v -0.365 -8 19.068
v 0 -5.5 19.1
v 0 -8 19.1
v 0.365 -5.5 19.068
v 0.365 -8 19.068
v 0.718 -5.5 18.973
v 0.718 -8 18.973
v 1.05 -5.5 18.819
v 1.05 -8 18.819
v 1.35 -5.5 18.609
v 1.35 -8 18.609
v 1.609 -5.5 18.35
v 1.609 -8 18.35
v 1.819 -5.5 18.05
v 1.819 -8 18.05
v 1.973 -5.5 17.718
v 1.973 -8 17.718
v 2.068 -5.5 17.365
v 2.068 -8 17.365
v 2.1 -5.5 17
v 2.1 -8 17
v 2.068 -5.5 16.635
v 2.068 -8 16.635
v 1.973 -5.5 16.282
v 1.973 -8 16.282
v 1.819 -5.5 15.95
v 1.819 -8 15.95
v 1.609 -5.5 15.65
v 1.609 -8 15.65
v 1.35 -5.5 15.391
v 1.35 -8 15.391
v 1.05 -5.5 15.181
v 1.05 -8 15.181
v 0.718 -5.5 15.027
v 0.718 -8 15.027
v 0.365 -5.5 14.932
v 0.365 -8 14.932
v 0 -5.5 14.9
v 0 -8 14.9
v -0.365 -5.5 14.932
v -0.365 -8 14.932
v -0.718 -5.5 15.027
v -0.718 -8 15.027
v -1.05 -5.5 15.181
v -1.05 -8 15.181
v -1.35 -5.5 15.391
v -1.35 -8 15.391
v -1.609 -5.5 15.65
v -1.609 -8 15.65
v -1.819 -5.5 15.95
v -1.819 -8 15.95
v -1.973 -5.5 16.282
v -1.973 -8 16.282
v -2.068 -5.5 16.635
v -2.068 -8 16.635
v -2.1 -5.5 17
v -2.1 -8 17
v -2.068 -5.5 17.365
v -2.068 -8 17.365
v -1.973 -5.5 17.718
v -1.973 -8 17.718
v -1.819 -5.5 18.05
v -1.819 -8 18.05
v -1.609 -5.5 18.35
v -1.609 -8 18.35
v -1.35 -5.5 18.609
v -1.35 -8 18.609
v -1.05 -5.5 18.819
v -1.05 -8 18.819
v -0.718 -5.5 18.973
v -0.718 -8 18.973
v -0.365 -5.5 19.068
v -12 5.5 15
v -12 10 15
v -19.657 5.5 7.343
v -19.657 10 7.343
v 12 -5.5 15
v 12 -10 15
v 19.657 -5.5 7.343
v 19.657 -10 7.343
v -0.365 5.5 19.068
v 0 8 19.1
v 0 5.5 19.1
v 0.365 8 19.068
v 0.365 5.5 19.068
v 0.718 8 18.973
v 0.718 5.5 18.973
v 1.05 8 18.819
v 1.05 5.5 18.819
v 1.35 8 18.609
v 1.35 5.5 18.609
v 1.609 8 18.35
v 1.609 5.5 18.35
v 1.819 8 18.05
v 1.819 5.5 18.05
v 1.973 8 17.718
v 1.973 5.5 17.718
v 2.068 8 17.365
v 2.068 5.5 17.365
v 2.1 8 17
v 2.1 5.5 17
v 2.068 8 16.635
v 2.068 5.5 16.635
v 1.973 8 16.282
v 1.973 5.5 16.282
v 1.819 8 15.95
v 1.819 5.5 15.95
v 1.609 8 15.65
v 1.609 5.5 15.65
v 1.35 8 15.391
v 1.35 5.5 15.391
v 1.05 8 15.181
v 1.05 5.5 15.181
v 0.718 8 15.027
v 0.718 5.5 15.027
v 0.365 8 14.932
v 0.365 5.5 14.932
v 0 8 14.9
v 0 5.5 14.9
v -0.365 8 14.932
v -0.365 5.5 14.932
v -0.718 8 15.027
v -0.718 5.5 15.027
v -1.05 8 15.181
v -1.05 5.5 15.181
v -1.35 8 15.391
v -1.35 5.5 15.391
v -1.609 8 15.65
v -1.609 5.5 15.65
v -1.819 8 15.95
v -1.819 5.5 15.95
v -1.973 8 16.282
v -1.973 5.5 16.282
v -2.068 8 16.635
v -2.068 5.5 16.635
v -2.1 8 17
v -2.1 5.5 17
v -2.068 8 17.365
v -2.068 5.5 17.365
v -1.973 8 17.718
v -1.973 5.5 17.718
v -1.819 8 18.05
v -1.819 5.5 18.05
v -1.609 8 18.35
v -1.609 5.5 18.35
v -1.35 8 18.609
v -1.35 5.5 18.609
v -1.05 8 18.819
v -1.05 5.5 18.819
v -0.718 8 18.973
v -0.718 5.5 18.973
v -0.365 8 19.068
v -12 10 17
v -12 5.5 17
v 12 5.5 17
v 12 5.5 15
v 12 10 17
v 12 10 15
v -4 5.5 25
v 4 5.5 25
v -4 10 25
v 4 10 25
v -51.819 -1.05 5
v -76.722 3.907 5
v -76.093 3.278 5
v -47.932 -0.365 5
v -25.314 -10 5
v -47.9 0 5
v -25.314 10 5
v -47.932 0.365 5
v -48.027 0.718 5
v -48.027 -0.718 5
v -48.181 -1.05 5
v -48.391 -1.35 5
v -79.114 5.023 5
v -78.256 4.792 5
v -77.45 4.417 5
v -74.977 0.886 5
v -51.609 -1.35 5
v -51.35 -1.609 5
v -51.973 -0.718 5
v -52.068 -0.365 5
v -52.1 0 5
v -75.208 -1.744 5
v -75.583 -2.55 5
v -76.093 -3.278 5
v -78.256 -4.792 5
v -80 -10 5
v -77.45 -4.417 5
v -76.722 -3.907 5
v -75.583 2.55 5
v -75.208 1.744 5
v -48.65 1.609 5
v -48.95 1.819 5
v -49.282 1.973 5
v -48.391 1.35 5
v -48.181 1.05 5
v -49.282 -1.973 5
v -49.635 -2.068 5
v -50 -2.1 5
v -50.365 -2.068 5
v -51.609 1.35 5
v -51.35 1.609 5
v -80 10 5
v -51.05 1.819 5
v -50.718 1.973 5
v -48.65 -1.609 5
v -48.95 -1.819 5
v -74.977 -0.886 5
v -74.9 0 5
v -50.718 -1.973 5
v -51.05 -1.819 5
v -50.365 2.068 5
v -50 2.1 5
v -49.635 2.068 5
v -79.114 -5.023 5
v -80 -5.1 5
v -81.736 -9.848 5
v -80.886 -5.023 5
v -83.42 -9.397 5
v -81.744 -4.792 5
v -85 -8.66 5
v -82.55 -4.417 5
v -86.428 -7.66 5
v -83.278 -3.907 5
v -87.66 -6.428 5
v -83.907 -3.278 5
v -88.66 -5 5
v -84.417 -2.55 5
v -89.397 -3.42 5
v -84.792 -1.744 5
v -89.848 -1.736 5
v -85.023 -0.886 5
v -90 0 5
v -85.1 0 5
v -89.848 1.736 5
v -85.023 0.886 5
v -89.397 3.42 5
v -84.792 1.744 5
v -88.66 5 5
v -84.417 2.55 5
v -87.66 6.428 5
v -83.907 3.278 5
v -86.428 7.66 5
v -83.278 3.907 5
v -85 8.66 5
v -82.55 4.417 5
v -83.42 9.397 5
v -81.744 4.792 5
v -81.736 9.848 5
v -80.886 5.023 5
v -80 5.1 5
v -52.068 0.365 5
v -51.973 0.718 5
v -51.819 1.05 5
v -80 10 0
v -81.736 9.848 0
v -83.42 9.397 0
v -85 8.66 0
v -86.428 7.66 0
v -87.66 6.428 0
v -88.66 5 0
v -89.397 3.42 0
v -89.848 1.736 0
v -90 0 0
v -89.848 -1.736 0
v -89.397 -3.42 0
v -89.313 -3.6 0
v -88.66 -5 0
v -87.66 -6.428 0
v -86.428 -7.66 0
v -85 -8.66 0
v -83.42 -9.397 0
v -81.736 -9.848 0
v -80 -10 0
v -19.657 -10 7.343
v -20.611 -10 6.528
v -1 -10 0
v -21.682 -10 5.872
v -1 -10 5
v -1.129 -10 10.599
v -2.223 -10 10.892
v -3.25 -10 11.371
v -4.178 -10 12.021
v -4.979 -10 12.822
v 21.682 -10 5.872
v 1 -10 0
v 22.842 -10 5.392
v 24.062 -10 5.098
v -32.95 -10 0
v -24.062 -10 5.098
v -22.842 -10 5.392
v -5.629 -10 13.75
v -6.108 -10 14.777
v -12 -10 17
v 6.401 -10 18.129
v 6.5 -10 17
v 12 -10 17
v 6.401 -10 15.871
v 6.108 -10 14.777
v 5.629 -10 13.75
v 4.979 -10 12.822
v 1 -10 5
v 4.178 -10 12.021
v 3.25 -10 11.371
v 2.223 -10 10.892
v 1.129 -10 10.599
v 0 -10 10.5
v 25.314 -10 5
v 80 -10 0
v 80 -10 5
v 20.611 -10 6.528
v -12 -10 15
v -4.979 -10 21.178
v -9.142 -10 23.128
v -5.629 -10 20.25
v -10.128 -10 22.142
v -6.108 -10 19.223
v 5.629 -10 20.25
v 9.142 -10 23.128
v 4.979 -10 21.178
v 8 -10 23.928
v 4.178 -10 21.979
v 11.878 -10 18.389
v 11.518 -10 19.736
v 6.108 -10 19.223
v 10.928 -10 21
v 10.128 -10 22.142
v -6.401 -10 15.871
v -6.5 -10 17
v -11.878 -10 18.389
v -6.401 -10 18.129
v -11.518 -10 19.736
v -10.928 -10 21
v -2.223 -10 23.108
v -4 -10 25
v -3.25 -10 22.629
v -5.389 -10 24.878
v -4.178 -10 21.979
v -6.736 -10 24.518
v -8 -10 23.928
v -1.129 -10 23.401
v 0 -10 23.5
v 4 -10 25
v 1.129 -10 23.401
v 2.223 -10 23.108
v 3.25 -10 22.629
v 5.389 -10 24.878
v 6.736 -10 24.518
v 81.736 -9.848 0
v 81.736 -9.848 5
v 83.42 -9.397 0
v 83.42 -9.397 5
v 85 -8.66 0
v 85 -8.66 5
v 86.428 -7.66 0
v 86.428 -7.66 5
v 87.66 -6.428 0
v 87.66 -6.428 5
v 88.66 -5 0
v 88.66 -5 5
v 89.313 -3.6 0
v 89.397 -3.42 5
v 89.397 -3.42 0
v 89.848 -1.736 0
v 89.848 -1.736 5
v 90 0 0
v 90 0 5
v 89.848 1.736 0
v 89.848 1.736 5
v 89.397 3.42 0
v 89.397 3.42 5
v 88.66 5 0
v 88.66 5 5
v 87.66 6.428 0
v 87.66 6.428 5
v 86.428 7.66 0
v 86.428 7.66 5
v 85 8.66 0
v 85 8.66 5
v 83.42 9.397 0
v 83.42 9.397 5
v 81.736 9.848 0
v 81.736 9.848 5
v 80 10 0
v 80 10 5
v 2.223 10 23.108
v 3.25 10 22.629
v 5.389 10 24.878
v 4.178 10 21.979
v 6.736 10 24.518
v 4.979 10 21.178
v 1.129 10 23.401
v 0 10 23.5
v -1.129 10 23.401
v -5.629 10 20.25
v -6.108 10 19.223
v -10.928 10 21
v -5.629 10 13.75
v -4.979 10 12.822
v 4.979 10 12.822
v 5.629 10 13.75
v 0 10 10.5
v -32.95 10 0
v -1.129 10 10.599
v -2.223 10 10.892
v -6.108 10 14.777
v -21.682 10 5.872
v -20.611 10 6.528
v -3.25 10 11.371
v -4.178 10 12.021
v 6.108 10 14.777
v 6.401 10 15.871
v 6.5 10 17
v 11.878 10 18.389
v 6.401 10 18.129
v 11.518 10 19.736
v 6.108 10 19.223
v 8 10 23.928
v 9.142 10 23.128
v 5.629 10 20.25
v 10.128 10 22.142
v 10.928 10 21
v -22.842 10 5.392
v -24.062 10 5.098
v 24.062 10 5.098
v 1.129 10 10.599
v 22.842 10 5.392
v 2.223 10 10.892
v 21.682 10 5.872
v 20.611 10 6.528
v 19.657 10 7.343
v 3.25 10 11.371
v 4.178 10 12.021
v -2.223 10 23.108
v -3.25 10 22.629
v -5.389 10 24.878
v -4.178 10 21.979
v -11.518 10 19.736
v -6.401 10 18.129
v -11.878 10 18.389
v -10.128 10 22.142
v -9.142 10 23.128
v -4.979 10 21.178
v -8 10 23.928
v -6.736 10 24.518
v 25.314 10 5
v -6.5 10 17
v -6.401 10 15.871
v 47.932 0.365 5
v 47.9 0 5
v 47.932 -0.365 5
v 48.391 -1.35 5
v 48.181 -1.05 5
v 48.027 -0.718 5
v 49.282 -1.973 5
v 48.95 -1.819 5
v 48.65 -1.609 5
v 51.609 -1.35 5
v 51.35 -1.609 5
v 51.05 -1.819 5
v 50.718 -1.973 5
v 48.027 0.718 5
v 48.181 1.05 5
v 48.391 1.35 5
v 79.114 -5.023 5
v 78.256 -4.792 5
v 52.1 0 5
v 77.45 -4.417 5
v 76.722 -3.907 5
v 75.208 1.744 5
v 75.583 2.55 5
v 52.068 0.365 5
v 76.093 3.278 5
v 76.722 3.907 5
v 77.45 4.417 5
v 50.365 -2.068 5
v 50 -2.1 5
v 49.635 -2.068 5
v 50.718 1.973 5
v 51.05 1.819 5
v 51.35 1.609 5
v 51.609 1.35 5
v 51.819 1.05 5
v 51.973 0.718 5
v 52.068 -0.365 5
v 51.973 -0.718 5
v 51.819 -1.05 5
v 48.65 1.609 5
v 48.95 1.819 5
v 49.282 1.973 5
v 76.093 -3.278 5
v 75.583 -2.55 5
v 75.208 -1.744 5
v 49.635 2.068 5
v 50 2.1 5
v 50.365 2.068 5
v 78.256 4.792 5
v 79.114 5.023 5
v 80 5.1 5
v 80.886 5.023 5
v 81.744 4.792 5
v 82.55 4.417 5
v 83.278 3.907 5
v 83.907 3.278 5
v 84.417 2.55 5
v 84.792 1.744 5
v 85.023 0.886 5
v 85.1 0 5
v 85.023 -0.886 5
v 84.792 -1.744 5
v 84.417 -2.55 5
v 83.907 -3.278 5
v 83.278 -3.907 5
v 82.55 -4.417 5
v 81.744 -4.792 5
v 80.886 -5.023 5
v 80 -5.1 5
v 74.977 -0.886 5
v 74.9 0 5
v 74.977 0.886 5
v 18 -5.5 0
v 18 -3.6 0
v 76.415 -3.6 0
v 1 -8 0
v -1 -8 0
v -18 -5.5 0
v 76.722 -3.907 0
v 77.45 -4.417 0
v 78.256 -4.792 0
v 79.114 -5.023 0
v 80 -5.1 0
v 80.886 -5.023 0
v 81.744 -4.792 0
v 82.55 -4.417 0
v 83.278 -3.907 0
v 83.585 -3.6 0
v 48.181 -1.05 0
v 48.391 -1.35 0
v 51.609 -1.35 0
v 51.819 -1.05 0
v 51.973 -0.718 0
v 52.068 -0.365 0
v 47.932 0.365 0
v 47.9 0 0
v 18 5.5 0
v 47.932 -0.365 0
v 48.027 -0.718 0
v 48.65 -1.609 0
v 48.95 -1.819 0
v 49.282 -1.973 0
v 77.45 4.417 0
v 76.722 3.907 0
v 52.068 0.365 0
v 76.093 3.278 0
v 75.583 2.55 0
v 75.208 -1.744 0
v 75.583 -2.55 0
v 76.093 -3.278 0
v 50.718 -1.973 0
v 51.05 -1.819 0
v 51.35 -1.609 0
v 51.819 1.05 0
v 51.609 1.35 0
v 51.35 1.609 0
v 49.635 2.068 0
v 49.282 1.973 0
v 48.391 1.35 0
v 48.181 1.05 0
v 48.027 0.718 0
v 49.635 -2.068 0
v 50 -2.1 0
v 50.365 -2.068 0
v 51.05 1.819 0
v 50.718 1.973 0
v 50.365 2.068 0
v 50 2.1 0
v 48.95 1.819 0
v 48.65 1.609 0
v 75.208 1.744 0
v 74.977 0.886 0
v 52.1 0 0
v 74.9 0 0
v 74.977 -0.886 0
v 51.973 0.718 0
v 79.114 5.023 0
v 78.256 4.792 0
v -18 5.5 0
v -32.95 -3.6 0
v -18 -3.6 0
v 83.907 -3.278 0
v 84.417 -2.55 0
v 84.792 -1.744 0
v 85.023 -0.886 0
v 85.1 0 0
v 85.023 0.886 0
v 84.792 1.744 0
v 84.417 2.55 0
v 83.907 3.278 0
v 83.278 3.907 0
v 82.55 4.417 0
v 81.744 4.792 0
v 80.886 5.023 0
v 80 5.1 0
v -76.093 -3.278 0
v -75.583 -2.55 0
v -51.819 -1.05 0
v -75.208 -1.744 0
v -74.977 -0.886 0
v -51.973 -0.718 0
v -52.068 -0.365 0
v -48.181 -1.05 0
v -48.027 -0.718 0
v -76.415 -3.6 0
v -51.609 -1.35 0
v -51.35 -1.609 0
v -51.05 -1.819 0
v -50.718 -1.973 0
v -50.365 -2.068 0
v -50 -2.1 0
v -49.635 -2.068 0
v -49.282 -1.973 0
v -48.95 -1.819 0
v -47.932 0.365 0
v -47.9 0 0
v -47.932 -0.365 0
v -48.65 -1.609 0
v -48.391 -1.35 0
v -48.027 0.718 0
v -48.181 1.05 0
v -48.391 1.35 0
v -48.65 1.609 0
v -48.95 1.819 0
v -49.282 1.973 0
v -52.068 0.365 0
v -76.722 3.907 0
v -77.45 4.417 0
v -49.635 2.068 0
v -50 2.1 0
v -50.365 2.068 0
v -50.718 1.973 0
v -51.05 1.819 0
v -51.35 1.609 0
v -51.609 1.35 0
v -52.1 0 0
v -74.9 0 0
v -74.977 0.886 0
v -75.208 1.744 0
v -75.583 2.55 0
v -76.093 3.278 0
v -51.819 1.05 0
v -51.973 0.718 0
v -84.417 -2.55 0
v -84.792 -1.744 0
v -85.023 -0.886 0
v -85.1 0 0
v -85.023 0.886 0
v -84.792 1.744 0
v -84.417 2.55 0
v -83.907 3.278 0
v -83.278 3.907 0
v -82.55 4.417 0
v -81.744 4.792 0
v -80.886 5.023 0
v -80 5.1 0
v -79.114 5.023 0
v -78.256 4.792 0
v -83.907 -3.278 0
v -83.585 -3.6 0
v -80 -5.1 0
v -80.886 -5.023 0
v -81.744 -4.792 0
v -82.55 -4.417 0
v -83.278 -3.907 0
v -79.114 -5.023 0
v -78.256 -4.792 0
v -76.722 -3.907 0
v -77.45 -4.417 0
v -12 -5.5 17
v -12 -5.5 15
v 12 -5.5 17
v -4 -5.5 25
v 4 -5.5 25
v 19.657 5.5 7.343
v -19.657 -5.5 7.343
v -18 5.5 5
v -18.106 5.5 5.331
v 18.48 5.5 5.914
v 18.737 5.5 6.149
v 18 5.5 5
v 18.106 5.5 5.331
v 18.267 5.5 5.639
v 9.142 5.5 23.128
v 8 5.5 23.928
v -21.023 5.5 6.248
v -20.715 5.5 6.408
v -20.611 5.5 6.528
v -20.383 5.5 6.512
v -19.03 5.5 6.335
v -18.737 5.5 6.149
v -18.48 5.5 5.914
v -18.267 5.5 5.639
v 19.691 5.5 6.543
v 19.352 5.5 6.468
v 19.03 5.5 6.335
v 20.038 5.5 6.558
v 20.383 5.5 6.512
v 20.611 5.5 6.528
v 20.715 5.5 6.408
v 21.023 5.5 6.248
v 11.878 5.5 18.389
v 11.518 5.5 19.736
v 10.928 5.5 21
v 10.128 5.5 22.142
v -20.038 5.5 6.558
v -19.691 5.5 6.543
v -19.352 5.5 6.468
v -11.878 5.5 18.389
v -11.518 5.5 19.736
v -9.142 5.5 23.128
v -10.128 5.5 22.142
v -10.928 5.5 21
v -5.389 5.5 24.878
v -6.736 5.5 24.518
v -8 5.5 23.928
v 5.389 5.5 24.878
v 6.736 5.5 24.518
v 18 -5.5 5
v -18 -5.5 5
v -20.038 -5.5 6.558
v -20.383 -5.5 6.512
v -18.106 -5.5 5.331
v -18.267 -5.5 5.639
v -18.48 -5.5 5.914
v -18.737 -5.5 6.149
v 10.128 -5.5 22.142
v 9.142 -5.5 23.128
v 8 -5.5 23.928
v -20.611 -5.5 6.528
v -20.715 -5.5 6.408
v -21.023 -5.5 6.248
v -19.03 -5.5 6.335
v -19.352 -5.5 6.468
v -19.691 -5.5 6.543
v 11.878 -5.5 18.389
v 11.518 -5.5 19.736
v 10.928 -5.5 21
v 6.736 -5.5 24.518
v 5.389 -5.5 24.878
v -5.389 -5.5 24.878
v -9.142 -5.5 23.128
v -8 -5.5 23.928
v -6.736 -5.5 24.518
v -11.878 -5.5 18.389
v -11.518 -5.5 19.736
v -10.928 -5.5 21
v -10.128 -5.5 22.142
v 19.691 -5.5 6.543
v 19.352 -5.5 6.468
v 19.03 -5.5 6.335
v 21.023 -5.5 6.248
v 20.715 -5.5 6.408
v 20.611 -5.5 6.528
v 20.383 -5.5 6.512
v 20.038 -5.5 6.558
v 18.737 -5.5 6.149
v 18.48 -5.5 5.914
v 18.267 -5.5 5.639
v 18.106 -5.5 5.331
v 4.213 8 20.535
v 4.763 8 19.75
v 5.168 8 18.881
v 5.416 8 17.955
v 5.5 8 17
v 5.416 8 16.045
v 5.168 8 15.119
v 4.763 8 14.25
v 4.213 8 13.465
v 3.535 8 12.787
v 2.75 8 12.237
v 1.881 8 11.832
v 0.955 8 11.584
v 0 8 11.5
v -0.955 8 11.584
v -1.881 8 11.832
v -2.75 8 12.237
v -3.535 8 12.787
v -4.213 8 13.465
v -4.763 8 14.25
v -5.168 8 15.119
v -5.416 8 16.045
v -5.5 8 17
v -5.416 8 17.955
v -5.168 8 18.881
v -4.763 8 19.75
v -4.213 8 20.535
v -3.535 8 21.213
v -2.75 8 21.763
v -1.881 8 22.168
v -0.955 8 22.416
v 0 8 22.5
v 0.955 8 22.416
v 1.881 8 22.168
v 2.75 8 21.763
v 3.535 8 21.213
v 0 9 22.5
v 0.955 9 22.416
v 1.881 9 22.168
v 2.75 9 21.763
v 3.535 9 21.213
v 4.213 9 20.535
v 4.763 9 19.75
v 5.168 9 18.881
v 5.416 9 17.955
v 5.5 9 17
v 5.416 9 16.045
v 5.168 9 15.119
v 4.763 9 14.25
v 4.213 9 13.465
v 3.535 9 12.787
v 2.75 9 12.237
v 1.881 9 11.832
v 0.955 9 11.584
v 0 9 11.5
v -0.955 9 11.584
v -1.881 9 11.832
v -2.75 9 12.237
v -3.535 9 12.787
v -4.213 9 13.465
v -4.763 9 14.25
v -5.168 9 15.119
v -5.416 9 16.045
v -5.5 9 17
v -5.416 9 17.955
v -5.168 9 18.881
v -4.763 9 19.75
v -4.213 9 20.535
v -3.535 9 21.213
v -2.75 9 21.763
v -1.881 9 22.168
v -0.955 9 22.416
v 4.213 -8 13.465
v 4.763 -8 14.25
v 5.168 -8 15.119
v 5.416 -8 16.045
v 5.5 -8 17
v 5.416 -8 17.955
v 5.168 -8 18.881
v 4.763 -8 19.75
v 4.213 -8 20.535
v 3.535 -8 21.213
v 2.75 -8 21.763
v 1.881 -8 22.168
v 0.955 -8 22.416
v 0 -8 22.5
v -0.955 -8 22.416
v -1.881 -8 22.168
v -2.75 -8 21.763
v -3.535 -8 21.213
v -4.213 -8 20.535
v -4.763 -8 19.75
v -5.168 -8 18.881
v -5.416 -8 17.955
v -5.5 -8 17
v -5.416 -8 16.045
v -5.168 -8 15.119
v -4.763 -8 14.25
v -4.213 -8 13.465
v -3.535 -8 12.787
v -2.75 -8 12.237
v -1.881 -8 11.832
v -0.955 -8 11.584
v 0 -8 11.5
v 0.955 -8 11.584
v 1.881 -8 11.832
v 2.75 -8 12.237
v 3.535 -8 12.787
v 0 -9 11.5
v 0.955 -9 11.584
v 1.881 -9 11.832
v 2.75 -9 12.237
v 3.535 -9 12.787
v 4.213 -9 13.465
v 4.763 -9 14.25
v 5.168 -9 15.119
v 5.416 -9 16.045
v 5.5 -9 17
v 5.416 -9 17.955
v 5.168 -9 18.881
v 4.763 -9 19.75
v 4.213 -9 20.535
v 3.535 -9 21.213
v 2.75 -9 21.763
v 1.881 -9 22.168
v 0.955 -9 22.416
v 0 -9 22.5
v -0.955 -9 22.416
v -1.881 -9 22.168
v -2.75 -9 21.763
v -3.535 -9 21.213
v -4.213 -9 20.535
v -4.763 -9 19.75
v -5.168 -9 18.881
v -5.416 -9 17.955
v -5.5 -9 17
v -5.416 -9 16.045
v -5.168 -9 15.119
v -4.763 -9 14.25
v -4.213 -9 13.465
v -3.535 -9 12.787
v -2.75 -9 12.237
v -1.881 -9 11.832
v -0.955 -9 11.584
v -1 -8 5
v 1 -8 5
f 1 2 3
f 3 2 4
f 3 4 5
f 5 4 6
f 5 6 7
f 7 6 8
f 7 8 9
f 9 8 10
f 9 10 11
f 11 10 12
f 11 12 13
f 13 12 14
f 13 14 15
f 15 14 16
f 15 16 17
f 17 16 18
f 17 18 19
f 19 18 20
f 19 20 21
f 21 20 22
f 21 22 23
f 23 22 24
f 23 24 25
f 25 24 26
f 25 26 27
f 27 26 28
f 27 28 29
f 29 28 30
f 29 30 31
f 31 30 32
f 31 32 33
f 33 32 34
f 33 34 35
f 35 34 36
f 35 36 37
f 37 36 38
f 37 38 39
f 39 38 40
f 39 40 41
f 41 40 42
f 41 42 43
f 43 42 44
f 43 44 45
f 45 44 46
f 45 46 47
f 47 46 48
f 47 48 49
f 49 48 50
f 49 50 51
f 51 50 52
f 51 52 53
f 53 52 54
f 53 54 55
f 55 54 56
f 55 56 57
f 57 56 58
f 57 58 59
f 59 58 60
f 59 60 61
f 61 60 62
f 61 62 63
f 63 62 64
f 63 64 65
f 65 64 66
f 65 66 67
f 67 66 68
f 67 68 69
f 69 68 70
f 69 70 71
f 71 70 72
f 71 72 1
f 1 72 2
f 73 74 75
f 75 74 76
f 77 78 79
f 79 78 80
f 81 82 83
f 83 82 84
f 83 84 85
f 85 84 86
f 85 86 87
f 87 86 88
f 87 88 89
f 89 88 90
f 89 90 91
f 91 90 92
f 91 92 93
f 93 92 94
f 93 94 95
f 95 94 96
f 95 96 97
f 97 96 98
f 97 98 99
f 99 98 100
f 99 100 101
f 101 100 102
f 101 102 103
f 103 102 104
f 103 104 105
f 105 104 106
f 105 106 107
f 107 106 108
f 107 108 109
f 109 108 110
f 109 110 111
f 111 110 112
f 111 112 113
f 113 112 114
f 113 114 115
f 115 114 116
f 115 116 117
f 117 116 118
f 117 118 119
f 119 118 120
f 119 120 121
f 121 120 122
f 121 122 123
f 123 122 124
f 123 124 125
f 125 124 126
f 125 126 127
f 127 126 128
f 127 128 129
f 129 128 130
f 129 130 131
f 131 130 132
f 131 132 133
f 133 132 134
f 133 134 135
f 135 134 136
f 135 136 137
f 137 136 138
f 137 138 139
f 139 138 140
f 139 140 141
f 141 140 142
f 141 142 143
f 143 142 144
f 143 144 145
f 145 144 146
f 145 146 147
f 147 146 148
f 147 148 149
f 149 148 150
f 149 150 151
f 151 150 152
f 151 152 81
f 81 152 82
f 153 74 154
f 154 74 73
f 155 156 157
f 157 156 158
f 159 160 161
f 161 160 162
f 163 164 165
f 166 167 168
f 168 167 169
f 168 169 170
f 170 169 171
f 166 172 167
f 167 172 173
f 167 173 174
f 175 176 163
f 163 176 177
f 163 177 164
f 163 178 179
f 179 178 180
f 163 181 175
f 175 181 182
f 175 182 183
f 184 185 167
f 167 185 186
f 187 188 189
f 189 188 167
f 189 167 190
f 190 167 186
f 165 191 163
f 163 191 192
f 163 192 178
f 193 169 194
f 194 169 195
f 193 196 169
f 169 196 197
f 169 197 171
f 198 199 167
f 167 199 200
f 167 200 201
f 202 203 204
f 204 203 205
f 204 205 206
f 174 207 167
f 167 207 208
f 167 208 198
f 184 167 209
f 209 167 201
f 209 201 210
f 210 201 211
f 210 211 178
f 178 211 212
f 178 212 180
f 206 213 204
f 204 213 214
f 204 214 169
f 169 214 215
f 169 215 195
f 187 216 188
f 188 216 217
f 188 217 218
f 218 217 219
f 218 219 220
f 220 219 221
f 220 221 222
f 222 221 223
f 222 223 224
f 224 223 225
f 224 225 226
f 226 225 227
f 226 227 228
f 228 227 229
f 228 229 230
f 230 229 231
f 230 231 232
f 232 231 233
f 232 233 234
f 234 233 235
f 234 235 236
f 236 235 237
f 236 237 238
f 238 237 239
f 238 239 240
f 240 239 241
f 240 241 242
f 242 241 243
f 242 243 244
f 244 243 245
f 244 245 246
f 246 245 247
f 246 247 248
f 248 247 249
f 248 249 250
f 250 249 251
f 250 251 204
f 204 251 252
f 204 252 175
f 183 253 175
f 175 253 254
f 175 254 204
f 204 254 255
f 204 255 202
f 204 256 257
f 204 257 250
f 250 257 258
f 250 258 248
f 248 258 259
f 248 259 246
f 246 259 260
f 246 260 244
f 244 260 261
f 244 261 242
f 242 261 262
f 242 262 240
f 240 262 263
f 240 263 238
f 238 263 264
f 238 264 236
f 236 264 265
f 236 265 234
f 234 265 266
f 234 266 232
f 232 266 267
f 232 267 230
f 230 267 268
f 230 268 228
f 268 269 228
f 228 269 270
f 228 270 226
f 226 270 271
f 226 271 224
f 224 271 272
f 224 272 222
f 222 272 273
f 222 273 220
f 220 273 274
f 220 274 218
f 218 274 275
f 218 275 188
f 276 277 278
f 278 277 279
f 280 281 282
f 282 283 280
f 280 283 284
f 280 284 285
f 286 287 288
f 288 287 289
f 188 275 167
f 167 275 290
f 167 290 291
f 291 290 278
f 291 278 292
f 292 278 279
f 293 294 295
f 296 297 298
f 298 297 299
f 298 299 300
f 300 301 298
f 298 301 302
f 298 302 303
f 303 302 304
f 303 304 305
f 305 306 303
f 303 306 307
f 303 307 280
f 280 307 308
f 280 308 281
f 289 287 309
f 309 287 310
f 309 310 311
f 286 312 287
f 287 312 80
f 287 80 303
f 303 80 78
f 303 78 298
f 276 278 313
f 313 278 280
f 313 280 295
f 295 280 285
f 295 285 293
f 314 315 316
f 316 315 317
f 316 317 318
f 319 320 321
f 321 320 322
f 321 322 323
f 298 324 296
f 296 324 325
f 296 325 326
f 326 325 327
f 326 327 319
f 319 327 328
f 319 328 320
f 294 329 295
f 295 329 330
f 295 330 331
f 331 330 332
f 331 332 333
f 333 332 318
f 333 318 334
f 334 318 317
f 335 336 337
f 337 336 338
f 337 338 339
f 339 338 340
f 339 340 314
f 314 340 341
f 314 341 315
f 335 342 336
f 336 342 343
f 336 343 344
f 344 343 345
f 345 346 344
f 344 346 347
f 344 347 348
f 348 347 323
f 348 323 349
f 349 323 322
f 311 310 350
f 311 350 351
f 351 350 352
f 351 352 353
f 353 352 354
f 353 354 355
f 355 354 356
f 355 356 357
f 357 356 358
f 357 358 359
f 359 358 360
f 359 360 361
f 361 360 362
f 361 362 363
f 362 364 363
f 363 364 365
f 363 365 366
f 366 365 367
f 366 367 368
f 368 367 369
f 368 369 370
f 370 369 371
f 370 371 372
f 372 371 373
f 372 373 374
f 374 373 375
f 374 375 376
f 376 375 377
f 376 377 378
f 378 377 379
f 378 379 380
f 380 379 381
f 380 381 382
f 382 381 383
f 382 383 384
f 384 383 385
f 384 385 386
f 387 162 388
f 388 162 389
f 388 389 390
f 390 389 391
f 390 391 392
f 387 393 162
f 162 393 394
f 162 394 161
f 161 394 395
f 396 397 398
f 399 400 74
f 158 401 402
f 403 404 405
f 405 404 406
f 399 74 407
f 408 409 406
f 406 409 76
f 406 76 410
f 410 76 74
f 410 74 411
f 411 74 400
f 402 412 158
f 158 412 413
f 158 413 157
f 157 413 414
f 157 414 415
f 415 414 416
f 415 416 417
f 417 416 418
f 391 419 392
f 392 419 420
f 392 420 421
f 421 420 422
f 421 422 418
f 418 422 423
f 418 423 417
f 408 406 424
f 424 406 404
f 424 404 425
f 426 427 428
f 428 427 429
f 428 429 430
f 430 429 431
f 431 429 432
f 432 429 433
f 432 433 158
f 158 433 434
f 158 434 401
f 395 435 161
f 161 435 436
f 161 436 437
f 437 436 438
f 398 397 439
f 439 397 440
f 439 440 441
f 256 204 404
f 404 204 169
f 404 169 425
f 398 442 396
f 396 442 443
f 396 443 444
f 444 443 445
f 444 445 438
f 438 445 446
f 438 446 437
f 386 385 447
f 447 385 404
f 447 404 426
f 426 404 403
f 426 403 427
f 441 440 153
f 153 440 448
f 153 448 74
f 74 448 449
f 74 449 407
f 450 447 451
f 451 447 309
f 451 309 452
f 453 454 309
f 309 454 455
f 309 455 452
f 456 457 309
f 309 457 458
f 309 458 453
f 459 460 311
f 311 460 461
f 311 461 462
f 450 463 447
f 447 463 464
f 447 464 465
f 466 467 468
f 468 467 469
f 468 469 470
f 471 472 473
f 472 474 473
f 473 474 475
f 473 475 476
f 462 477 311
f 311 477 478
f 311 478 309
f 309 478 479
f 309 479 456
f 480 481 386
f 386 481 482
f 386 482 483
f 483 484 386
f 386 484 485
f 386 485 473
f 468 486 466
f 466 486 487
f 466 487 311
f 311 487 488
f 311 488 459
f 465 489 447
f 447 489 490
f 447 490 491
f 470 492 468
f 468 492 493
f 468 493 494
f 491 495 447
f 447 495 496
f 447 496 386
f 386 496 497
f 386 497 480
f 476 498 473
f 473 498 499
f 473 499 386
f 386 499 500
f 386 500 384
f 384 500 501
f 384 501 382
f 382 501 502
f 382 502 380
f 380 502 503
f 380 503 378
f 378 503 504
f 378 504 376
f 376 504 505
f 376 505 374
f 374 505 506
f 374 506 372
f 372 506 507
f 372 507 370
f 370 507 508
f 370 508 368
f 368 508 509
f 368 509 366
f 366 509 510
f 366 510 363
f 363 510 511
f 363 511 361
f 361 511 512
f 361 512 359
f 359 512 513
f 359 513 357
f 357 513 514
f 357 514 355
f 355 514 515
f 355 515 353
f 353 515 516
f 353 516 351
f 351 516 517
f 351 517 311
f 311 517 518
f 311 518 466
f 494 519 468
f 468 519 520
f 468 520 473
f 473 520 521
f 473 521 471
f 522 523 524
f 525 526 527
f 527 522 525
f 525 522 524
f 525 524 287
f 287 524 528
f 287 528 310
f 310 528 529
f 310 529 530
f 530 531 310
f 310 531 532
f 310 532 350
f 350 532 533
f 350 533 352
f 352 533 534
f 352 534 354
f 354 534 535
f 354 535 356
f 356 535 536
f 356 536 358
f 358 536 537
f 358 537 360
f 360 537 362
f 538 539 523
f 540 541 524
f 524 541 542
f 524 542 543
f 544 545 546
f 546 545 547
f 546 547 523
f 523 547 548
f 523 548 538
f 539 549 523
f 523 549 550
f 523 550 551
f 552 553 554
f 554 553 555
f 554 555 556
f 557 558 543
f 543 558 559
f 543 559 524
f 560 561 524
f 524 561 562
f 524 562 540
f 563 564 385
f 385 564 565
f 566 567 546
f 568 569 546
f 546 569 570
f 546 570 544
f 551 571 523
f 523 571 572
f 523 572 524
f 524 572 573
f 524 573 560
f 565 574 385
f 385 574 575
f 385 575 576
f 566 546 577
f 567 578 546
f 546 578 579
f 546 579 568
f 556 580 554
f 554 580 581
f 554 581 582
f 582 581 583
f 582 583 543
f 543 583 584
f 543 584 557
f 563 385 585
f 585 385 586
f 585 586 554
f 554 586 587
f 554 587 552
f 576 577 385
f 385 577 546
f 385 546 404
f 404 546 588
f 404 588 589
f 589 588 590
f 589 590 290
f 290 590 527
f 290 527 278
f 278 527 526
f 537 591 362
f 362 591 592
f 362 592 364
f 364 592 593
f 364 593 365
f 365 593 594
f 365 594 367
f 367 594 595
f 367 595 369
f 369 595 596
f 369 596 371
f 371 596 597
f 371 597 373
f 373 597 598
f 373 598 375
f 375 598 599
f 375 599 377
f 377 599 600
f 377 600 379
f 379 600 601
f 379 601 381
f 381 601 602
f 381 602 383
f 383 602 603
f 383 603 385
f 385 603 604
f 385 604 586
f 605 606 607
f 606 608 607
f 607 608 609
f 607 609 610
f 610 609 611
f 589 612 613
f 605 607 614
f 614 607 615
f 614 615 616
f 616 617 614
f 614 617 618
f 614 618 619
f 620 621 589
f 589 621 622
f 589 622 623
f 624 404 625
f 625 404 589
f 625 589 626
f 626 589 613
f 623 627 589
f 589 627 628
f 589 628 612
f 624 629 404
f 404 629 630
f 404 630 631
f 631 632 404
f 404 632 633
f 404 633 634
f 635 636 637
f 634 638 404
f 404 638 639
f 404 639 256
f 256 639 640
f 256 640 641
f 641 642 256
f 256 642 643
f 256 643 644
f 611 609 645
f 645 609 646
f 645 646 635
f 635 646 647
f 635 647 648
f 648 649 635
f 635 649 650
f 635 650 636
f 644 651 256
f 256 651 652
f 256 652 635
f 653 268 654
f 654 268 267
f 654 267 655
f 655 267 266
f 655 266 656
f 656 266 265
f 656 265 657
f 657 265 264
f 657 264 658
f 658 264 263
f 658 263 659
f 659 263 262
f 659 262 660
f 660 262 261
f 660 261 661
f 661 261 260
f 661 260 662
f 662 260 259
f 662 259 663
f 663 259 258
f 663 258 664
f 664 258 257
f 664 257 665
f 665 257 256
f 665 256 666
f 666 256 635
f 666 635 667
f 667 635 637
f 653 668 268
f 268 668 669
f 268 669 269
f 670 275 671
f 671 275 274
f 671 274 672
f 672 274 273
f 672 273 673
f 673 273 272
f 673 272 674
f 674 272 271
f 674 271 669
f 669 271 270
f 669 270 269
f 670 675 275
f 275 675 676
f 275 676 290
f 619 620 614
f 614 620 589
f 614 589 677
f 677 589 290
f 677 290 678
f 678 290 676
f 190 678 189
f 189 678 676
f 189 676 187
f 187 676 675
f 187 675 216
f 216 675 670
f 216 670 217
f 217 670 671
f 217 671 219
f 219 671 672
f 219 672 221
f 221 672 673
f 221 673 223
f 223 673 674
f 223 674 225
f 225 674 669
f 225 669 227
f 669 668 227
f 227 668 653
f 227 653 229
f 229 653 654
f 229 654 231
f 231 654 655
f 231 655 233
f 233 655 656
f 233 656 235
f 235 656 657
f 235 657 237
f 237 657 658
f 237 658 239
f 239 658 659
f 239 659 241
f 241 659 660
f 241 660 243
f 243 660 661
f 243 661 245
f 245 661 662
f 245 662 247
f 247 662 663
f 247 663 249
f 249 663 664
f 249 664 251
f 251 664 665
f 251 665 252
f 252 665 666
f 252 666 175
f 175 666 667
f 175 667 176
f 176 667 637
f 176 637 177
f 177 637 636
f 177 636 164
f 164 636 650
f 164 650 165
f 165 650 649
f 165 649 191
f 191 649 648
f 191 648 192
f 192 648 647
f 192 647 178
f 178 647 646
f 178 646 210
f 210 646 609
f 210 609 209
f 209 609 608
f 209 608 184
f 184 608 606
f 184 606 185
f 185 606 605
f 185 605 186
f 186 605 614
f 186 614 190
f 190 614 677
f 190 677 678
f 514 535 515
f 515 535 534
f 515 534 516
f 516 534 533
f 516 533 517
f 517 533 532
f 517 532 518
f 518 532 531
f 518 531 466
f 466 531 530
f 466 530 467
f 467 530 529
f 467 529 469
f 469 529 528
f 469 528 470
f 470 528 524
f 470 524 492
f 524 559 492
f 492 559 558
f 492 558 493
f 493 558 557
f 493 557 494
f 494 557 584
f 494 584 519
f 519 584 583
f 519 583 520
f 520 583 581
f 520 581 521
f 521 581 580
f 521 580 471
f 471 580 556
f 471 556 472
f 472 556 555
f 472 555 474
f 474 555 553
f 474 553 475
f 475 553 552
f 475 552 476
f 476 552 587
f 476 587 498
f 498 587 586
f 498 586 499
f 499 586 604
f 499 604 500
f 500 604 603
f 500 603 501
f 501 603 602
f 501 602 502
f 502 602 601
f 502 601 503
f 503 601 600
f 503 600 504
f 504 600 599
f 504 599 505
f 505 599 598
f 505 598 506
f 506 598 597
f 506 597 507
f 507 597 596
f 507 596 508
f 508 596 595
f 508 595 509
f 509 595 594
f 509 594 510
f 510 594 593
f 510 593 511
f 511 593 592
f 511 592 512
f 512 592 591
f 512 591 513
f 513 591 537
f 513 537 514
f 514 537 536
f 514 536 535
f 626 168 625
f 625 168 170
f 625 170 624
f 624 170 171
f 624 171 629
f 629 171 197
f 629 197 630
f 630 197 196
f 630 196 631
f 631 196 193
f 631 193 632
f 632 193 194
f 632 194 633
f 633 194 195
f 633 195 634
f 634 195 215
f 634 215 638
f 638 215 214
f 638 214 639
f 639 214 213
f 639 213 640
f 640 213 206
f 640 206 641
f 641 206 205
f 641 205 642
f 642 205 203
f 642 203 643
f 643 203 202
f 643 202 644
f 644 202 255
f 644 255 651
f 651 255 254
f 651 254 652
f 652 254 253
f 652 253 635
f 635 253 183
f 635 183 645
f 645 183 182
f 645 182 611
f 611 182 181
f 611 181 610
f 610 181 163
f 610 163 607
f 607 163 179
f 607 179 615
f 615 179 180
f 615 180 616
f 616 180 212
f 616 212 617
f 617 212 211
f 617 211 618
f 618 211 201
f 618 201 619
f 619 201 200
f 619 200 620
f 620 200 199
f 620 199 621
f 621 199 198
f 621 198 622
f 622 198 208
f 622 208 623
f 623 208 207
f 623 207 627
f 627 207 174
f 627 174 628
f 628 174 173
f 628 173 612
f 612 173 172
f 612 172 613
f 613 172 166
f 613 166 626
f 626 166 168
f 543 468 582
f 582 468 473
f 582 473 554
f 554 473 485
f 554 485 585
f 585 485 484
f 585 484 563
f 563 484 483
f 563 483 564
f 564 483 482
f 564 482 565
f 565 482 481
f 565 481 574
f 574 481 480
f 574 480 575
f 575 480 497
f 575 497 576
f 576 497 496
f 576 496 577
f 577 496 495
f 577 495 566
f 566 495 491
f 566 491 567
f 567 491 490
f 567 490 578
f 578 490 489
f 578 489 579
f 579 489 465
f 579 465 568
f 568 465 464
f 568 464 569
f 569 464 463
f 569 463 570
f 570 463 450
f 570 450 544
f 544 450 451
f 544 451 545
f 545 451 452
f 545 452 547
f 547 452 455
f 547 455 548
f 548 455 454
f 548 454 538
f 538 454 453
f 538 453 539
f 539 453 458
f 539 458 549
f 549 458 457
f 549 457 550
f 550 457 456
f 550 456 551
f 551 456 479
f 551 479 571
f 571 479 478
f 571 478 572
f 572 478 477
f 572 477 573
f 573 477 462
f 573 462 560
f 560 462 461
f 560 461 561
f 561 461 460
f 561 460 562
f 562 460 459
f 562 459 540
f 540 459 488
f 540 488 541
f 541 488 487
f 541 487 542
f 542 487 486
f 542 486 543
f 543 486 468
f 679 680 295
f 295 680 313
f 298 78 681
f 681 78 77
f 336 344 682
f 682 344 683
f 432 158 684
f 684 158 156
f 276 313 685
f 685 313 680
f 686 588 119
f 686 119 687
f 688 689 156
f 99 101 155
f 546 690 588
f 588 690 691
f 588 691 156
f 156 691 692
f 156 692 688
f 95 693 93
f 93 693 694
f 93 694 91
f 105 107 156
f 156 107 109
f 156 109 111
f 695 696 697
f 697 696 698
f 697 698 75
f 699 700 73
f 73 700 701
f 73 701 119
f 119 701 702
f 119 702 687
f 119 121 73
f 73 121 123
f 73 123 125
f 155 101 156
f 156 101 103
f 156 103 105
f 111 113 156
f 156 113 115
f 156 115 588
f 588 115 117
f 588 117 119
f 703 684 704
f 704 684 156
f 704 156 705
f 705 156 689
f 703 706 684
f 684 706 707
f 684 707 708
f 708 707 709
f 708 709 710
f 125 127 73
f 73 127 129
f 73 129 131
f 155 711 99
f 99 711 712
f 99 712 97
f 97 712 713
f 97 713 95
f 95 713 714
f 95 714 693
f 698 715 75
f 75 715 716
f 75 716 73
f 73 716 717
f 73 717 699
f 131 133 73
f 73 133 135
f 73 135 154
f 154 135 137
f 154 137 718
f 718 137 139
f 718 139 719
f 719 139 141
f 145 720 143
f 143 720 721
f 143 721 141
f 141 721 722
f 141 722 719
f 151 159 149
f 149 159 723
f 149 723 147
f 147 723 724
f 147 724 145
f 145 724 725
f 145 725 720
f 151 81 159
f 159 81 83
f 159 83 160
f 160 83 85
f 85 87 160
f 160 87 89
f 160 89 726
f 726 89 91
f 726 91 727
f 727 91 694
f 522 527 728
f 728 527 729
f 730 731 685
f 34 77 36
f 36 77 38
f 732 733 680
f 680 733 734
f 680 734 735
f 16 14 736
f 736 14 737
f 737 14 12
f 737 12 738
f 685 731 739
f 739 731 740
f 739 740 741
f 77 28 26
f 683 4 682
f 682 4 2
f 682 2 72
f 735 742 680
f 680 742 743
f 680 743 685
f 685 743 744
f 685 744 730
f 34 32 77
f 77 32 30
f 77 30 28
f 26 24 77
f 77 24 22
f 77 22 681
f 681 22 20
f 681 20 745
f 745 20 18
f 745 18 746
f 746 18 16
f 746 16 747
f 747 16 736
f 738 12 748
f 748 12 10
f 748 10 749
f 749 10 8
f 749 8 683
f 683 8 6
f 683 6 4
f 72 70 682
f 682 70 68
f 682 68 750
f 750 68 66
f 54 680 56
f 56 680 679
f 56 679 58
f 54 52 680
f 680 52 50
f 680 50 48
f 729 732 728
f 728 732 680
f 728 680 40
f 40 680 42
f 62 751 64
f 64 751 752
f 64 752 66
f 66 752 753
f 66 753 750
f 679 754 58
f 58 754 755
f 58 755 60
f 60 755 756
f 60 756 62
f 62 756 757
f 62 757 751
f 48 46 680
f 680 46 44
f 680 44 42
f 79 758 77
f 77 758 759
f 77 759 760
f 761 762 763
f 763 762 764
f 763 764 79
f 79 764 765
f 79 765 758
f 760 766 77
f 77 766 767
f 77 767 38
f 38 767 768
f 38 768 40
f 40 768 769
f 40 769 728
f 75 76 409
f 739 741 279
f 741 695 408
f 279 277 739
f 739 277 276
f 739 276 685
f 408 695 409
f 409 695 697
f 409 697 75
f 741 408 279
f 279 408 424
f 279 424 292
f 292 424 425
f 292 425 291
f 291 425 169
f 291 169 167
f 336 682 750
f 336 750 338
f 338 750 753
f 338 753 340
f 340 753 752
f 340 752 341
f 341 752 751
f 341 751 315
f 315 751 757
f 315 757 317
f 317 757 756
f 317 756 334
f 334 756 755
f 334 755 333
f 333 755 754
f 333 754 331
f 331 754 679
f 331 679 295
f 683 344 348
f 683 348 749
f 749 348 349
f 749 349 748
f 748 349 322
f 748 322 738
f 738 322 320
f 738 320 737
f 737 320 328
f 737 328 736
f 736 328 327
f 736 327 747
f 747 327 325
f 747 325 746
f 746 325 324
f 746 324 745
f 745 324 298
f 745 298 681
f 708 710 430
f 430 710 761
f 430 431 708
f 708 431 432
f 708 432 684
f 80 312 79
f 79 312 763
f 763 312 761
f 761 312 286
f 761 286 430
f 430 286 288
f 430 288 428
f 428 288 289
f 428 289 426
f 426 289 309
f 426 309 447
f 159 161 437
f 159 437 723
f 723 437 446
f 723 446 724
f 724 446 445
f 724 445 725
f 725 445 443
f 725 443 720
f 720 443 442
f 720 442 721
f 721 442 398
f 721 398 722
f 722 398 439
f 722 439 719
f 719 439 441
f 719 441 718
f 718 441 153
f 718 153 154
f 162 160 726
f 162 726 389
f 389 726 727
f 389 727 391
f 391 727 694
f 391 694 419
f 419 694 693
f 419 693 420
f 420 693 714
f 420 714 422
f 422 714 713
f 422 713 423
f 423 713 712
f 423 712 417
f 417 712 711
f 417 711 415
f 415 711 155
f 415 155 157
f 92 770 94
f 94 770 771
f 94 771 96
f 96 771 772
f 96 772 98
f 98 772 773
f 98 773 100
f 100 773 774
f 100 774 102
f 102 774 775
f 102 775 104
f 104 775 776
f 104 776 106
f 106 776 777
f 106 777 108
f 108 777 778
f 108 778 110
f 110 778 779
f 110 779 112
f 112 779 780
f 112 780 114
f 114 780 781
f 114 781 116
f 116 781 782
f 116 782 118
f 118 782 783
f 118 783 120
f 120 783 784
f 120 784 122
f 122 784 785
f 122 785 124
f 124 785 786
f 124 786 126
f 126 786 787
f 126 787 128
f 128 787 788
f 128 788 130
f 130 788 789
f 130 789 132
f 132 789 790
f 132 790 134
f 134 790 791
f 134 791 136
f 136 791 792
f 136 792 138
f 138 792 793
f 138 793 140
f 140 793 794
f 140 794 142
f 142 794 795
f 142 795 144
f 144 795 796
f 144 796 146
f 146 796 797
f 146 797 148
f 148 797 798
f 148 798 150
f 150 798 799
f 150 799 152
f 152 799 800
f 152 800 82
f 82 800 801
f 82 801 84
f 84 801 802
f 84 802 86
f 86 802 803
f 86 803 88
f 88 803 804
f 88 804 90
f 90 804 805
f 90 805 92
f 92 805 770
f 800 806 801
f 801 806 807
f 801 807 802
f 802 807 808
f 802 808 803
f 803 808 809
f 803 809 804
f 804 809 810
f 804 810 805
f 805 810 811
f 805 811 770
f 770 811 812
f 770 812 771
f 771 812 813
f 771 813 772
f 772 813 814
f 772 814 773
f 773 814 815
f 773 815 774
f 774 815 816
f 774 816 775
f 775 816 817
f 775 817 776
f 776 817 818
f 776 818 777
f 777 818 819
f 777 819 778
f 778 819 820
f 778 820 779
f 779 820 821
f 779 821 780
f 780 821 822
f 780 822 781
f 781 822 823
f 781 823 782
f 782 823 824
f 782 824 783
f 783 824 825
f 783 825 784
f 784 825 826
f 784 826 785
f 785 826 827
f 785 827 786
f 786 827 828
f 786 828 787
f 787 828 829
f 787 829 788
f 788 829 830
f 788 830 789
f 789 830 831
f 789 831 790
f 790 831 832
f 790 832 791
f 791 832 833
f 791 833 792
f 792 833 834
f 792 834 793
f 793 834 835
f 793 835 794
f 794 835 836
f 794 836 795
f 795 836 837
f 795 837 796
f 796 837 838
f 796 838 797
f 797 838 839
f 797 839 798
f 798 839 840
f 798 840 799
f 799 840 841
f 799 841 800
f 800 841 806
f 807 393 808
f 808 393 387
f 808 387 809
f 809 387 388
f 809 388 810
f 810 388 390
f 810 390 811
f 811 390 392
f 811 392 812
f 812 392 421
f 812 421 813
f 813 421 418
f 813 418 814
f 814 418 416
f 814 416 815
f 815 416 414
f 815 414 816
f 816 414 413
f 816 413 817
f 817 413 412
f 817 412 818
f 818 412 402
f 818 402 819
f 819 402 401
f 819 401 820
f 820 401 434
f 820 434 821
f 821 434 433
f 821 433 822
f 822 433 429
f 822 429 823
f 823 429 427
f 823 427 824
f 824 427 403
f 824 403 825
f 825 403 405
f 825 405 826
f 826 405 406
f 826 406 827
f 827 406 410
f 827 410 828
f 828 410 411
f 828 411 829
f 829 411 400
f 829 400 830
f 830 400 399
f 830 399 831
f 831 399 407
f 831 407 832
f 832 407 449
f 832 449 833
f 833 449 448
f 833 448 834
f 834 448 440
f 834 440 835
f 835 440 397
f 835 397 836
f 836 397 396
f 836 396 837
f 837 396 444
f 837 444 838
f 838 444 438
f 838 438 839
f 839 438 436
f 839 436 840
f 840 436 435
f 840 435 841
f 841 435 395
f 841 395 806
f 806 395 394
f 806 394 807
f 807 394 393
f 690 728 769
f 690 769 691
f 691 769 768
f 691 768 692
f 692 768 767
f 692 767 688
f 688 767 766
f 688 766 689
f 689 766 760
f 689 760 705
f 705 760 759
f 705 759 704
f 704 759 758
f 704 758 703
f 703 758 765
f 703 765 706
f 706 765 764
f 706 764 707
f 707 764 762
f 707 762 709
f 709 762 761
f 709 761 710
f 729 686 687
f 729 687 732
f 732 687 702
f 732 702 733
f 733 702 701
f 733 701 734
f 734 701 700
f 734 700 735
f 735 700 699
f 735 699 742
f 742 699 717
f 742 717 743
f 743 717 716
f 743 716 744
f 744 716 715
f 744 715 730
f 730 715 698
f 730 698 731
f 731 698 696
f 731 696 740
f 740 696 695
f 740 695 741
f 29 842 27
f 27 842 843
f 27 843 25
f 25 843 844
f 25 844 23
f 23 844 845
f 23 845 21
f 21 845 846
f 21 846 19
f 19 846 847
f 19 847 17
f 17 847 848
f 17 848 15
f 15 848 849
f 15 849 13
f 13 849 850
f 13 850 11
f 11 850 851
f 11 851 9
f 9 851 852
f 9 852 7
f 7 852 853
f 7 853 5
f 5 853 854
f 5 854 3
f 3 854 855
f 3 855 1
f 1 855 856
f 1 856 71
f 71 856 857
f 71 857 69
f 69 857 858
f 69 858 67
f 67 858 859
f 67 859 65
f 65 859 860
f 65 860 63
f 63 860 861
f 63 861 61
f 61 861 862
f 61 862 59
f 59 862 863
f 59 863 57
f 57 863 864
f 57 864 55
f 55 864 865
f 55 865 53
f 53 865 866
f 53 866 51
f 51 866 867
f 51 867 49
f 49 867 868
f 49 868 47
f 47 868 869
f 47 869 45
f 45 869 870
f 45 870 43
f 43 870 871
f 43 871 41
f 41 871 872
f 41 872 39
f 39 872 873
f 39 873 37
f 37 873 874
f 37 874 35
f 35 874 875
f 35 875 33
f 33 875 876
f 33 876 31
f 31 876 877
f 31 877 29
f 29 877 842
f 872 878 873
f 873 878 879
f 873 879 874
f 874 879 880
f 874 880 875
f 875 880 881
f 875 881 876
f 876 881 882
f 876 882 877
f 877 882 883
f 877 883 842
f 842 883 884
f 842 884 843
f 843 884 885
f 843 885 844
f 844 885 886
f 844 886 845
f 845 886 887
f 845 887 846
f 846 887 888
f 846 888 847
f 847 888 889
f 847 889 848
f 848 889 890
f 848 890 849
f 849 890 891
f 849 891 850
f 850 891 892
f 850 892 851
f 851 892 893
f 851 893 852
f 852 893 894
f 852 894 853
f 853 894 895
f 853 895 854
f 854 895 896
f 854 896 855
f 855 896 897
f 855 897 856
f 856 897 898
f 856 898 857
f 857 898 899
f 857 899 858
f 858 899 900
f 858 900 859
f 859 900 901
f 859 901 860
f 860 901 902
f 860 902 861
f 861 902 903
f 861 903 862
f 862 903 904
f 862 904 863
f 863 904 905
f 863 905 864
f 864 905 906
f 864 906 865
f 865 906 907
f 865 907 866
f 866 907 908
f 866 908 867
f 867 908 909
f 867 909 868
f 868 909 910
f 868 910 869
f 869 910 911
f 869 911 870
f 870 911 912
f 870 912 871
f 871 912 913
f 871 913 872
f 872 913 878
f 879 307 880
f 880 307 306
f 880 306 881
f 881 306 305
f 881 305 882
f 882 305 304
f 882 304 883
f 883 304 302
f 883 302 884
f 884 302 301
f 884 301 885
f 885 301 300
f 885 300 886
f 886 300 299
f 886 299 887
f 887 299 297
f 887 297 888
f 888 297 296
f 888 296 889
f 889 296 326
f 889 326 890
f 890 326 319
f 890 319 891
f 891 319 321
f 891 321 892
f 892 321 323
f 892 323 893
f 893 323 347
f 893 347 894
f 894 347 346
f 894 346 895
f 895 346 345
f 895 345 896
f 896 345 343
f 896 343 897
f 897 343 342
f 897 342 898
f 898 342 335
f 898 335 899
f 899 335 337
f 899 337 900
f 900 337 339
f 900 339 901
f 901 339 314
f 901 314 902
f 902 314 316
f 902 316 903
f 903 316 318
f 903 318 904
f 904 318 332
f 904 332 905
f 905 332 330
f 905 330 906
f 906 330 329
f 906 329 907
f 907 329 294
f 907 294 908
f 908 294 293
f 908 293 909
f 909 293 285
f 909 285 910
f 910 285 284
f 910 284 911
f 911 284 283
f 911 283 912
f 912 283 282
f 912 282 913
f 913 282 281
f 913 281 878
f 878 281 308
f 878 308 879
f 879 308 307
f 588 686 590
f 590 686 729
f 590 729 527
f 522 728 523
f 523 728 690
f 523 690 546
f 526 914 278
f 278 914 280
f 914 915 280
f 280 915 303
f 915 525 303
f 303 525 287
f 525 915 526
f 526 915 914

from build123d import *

# Parameters (mm, degrees)
BOSS_EXTRU_1_DEPTH      = 5
ESQUISSE2_R             = 5.1
ESQUISSE2_R_2           = 2.1
ENL_V_MAT_EXTRU_1_DEPTH = 91.691785736
ESQUISSE3_W             = 24
ESQUISSE3_H             = 20
BOSS_EXTRU_2_DEPTH      = 20
CHANFREIN1_SIZE         = 10
ESQUISSE4_W             = 36
ESQUISSE4_H             = 11
ENL_V_MAT_EXTRU_2_DEPTH = 20
ESQUISSE5_R             = 2.1
ENL_V_MAT_EXTRU_3_DEPTH = 96.524865873
CONG_1_R                = 8
ESQUISSE6_R             = 5.5
ENL_V_MAT_EXTRU_4_DEPTH = 2
CHANFREIN2_SIZE         = 1
CONG_4_R                = 2
ENL_V_START             = -2
ESQUISSE7_R             = 5.5
ENL_V_MAT_EXTRU_5_DEPTH = 2
CHANFREIN3_SIZE         = 1
ESQUISSE8_W             = 36
ESQUISSE8_H             = 11
ENL_V_MAT_EXTRU_6_DEPTH = 93.736184955
ESQUISSE9_W             = 2
ESQUISSE9_H             = 5
ENL_V_MAT_EXTRU_7_DEPTH = 2


with BuildPart() as part:
    # Esquisse1 → Boss.-Extru.1 (new body)
    with BuildSketch(Plane.XY):
        with BuildLine():
            Line((-80, 10), (80, 10))
            ThreePointArc((80, 10), (90, 0), (80, -10))
            Line((80, -10), (-80, -10))
            ThreePointArc((-80, -10), (-90, 0), (-80, 10))
        make_face()
    extrude(amount=BOSS_EXTRU_1_DEPTH)

    # Esquisse2 → Enlèv. mat.-Extru.1 (cut, through all)
    with BuildSketch(Plane.XY.offset(5)):
        with Locations((-80, 0)):
            Circle(ESQUISSE2_R)
        with Locations((80, 0)):
            Circle(ESQUISSE2_R)
        with Locations((-50, 0)):
            Circle(ESQUISSE2_R_2)
        with Locations((50, 0)):
            Circle(ESQUISSE2_R_2)
    extrude(amount=-ENL_V_MAT_EXTRU_1_DEPTH, mode=Mode.SUBTRACT)

    # Esquisse3 → Boss.-Extru.2 (add)
    with BuildSketch(Plane.XY.offset(5)):
        Rectangle(ESQUISSE3_W, ESQUISSE3_H)
    extrude(amount=BOSS_EXTRU_2_DEPTH)

    # Chanfrein1
    chanfrein1_edges = [part.edges().sort_by_distance(p)[0] for p in [
        (12, 0, 5),
        (-12, 0, 5),
    ]]
    chamfer(chanfrein1_edges, length=CHANFREIN1_SIZE)

    # Esquisse4 → Enlèv. mat.-Extru.2 (cut)
    with BuildSketch(Plane.XY.offset(25)):
        Rectangle(ESQUISSE4_W, ESQUISSE4_H)
    extrude(amount=-ENL_V_MAT_EXTRU_2_DEPTH, mode=Mode.SUBTRACT)

    # Esquisse5 → Enlèv. mat.-Extru.3 (cut, through all)
    with BuildSketch(Plane(origin=(0, 10, 0), x_dir=(1, 0, 0), z_dir=(0, 1, 0))):
        with Locations(Location((0, -17, 0), (0, 0, 270))):
            Circle(ESQUISSE5_R)
    extrude(amount=-ENL_V_MAT_EXTRU_3_DEPTH, mode=Mode.SUBTRACT)

    # Congé1
    cong_1_edges = [part.edges().sort_by_distance(p)[0] for p in [
        (-22, 0, 5),
        (-12, -7.75, 25),
        (12, -7.75, 25),
        (22, 0, 5),
        (-12, 7.75, 25),
        (12, 7.75, 25),
    ]]
    fillet(cong_1_edges, radius=CONG_1_R)

    # Esquisse6 → Enlèv. mat.-Extru.4 (cut)
    with BuildSketch(Plane(origin=(0, 10, 0), x_dir=(1, 0, 0), z_dir=(0, 1, 0))):
        with Locations(Location((0, -17, 0), (0, 0, 270))):
            Circle(ESQUISSE6_R)
    extrude(amount=-ENL_V_MAT_EXTRU_4_DEPTH, mode=Mode.SUBTRACT)

    # Chanfrein2
    chanfrein2_edges = [part.edges().sort_by_distance(p)[0] for p in [
        (0, 10, 11.5),
    ]]
    chamfer(chanfrein2_edges, length=CHANFREIN2_SIZE)

    # Congé4
    # the kernel refuses this fillet: 2 mm, written as the material it takes off along each edge
    with BuildSketch(Plane(origin=(18, -5.5, 9), x_dir=(0.7394878589424565, 0, -0.6731698942144558), z_dir=(0, 1, 0)), Plane(origin=(-18, 5.5, 9), x_dir=(-0.7394878589424565, 0, -0.6731698942144557), z_dir=(0, -1, 0))) as cong_4_piece_1:
        with BuildLine():
            CenterArc((4.431818389, 1.970329953), CONG_4_R, 150.40864019, 109.709922664)
            Line((2.692679577, 2.957951436), (2.518765696, 3.056713584))
            ThreePointArc((2.518765696, 3.056713584), (1.198442217, 1.613609697), (-0.147897572, 0.134633979))
            Line((-0.147897572, 0.134633979), (0.009378777, -0.199779975))
            ThreePointArc((0.009378777, -0.199779975), (2.349946778, -0.089900774), (4.054276537, -0.197032995))
            Line((4.054276537, -0.197032995), (4.088598523, 0))
        make_face()
    extrude(amount=11, mode=Mode.SUBTRACT)

    # Esquisse7 → Enlèv. mat.-Extru.5 (cut)
    with BuildSketch(Plane.XZ.offset(10).offset(ENL_V_START)):
        with Locations(Location((0, 17, 0), (0, 0, 90))):
            Circle(ESQUISSE7_R)
    extrude(amount=ENL_V_MAT_EXTRU_5_DEPTH, mode=Mode.SUBTRACT)

    # Chanfrein3
    chanfrein3_edges = [part.edges().sort_by_distance(p)[0] for p in [
        (0, -10, 11.5),
    ]]
    chamfer(chanfrein3_edges, length=CHANFREIN3_SIZE)

    # Esquisse8 → Enlèv. mat.-Extru.6 (cut, through all)
    with BuildSketch(Plane.XY.offset(5)):
        Rectangle(ESQUISSE8_W, ESQUISSE8_H)
    extrude(amount=-ENL_V_MAT_EXTRU_6_DEPTH, mode=Mode.SUBTRACT)

    # Esquisse9 → Enlèv. mat.-Extru.7 (cut)
    with BuildSketch(Plane.XZ.offset(10)):
        with Locations((0, 2.5)):
            Rectangle(ESQUISSE9_W, ESQUISSE9_H)
    extrude(amount=-ENL_V_MAT_EXTRU_7_DEPTH, mode=Mode.SUBTRACT)


solid = part.part
